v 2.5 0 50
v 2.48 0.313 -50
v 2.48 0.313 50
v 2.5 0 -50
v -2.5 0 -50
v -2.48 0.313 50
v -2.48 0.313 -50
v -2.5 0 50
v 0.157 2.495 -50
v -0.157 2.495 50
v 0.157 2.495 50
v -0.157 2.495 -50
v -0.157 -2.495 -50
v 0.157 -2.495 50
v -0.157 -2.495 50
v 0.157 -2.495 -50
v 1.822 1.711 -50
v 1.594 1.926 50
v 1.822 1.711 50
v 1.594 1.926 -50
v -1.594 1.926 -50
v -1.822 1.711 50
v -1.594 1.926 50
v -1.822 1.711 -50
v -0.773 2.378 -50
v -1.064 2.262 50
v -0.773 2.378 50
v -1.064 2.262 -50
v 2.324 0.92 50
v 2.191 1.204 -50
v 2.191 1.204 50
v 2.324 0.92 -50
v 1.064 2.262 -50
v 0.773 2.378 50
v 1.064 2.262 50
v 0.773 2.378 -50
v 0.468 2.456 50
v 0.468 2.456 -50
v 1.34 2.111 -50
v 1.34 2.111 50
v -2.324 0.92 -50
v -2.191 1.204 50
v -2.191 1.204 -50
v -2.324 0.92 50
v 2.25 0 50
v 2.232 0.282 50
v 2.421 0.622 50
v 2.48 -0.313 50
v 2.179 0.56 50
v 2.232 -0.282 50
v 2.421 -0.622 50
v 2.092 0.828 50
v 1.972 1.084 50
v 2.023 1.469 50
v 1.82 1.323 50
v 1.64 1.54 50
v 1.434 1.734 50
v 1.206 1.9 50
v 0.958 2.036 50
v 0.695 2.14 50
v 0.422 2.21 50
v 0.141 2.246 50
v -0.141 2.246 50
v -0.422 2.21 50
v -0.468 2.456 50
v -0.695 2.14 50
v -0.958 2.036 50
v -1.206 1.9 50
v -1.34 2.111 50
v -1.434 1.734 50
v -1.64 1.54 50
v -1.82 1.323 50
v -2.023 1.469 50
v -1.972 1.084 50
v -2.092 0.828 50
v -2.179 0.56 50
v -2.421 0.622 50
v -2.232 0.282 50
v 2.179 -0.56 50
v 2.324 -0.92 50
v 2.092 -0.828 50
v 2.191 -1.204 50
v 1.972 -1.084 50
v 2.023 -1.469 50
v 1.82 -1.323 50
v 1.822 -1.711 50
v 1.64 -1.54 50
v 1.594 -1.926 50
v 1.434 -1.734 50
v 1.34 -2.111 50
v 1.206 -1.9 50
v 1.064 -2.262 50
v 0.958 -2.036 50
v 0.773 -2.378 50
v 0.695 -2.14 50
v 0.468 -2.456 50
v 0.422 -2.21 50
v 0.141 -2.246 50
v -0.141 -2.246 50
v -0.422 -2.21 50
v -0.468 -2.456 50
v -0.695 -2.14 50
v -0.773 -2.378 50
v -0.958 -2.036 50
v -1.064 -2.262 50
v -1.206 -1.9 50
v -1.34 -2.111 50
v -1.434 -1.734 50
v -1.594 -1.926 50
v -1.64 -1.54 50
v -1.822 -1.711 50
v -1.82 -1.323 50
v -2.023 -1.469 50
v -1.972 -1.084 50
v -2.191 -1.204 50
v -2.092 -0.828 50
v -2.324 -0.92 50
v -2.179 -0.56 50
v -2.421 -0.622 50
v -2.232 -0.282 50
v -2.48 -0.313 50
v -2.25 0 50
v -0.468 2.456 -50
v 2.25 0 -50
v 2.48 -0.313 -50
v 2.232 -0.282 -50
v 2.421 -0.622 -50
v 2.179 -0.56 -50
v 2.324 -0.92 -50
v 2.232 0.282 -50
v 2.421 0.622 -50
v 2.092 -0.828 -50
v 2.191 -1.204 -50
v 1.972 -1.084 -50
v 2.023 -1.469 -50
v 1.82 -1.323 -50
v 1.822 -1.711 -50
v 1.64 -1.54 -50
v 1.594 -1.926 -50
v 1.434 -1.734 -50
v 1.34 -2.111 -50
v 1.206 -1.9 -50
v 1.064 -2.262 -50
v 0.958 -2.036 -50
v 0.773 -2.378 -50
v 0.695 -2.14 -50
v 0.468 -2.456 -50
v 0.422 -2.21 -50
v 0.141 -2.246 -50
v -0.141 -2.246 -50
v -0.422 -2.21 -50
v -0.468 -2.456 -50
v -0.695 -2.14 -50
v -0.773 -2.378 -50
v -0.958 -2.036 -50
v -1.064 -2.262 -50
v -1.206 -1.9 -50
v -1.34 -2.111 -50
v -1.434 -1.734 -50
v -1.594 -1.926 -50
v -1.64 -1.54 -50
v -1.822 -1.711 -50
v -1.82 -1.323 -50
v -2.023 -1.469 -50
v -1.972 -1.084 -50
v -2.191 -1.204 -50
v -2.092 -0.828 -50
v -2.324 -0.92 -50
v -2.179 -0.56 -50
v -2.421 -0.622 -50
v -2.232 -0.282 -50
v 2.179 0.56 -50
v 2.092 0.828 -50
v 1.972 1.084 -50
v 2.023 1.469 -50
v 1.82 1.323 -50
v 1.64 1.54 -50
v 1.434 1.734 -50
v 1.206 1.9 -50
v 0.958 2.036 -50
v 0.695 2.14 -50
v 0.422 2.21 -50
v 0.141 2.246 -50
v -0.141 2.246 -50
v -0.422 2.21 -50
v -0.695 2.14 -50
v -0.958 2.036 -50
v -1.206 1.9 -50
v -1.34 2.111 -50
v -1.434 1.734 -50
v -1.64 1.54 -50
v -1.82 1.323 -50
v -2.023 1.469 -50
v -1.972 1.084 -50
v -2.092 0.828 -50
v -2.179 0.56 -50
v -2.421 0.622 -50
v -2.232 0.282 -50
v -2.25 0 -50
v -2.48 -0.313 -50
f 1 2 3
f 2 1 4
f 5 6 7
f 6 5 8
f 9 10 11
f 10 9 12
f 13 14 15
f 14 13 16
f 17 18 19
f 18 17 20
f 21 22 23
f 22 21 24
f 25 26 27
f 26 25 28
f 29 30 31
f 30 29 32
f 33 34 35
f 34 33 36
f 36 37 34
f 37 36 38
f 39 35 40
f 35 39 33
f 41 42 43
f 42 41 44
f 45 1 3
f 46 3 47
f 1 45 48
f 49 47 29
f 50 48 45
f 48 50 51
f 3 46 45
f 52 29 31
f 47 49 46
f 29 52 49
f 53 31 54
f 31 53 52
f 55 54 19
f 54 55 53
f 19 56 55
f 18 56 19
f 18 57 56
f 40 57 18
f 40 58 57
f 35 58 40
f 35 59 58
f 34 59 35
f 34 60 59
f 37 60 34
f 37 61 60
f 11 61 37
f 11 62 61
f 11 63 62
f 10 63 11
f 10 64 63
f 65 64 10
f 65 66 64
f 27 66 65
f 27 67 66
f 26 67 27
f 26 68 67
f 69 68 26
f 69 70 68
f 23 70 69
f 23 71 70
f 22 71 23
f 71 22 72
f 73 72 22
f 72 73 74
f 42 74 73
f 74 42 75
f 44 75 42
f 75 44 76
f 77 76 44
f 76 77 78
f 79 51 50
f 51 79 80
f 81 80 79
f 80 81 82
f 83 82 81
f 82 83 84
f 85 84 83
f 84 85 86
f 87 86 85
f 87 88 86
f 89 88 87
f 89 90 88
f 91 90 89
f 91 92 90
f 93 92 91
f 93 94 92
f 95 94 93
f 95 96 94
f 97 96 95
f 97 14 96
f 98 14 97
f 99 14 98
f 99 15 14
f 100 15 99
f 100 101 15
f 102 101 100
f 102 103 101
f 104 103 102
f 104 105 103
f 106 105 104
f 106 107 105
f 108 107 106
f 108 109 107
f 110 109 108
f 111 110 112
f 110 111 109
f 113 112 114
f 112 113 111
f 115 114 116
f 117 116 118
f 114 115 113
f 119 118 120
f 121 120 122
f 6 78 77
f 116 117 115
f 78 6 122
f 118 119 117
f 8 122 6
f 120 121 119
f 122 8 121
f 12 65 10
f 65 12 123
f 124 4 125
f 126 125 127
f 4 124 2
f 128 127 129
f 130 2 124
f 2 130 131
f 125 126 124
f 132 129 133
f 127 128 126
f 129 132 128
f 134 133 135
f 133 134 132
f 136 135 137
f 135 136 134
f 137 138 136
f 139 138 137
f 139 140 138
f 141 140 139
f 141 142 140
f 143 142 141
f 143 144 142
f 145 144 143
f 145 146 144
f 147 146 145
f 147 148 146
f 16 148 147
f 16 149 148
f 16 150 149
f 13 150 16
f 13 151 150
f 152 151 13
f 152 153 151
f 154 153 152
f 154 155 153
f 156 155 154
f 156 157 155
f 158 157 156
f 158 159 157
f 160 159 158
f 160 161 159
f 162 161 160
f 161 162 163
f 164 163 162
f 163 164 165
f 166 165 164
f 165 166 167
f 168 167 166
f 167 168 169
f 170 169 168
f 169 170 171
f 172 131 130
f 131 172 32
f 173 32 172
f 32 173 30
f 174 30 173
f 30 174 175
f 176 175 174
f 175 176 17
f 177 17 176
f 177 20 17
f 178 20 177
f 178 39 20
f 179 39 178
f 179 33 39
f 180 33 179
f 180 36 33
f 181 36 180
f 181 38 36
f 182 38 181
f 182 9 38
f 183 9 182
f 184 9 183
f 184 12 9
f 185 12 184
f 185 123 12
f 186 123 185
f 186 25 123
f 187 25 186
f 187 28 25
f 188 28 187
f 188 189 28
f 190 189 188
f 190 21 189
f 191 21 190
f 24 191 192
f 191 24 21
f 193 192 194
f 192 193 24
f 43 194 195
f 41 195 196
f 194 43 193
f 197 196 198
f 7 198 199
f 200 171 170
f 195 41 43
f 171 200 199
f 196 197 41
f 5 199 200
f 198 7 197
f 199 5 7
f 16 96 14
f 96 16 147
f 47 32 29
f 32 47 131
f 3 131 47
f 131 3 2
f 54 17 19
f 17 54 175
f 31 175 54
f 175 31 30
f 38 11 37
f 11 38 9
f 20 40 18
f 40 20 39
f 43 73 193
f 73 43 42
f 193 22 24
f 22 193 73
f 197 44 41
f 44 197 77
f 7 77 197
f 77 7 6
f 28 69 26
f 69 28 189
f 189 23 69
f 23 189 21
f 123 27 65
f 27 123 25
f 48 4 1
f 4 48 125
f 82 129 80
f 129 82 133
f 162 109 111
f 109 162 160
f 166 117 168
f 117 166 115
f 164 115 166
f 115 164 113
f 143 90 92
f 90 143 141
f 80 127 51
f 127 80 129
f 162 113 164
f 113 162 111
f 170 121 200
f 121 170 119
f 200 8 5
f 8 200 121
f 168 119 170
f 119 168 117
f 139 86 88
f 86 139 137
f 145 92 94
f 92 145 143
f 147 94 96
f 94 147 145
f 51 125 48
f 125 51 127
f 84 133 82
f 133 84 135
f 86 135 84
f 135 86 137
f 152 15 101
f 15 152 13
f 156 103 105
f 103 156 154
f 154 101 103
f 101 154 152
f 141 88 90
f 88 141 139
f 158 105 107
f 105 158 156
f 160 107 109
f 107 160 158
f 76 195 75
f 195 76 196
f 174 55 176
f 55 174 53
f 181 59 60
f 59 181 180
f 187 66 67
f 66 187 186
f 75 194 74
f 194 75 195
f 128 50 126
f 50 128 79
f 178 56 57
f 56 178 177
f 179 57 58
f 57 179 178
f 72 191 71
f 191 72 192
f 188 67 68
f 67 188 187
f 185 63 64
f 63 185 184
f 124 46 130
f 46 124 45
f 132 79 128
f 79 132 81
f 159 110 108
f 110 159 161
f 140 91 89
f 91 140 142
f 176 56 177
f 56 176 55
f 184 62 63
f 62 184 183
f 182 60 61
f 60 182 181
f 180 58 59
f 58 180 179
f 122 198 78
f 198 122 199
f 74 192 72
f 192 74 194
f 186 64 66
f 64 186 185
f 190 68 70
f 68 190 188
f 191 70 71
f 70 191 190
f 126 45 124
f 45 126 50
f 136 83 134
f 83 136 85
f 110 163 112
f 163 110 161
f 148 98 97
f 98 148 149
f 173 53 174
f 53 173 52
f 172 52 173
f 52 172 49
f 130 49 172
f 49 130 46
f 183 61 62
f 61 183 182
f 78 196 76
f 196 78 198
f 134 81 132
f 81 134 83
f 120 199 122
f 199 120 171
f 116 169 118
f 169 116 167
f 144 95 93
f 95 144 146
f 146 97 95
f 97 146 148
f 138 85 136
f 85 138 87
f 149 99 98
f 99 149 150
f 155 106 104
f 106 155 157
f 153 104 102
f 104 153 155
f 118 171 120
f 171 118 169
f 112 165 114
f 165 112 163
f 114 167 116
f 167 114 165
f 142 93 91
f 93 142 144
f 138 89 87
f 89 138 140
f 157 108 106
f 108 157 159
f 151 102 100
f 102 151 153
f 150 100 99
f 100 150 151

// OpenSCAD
$fn = 50;


difference() {
	union() {
		translate(v = [0, 0, -50.0000000000]) {
			cylinder(h = 100, r = 2.5000000000);
		}
	}
	union() {
		translate(v = [0, 0, -100.0000000000]) {
			cylinder(h = 200, r = 2.2500000000);
		}
	}
}
